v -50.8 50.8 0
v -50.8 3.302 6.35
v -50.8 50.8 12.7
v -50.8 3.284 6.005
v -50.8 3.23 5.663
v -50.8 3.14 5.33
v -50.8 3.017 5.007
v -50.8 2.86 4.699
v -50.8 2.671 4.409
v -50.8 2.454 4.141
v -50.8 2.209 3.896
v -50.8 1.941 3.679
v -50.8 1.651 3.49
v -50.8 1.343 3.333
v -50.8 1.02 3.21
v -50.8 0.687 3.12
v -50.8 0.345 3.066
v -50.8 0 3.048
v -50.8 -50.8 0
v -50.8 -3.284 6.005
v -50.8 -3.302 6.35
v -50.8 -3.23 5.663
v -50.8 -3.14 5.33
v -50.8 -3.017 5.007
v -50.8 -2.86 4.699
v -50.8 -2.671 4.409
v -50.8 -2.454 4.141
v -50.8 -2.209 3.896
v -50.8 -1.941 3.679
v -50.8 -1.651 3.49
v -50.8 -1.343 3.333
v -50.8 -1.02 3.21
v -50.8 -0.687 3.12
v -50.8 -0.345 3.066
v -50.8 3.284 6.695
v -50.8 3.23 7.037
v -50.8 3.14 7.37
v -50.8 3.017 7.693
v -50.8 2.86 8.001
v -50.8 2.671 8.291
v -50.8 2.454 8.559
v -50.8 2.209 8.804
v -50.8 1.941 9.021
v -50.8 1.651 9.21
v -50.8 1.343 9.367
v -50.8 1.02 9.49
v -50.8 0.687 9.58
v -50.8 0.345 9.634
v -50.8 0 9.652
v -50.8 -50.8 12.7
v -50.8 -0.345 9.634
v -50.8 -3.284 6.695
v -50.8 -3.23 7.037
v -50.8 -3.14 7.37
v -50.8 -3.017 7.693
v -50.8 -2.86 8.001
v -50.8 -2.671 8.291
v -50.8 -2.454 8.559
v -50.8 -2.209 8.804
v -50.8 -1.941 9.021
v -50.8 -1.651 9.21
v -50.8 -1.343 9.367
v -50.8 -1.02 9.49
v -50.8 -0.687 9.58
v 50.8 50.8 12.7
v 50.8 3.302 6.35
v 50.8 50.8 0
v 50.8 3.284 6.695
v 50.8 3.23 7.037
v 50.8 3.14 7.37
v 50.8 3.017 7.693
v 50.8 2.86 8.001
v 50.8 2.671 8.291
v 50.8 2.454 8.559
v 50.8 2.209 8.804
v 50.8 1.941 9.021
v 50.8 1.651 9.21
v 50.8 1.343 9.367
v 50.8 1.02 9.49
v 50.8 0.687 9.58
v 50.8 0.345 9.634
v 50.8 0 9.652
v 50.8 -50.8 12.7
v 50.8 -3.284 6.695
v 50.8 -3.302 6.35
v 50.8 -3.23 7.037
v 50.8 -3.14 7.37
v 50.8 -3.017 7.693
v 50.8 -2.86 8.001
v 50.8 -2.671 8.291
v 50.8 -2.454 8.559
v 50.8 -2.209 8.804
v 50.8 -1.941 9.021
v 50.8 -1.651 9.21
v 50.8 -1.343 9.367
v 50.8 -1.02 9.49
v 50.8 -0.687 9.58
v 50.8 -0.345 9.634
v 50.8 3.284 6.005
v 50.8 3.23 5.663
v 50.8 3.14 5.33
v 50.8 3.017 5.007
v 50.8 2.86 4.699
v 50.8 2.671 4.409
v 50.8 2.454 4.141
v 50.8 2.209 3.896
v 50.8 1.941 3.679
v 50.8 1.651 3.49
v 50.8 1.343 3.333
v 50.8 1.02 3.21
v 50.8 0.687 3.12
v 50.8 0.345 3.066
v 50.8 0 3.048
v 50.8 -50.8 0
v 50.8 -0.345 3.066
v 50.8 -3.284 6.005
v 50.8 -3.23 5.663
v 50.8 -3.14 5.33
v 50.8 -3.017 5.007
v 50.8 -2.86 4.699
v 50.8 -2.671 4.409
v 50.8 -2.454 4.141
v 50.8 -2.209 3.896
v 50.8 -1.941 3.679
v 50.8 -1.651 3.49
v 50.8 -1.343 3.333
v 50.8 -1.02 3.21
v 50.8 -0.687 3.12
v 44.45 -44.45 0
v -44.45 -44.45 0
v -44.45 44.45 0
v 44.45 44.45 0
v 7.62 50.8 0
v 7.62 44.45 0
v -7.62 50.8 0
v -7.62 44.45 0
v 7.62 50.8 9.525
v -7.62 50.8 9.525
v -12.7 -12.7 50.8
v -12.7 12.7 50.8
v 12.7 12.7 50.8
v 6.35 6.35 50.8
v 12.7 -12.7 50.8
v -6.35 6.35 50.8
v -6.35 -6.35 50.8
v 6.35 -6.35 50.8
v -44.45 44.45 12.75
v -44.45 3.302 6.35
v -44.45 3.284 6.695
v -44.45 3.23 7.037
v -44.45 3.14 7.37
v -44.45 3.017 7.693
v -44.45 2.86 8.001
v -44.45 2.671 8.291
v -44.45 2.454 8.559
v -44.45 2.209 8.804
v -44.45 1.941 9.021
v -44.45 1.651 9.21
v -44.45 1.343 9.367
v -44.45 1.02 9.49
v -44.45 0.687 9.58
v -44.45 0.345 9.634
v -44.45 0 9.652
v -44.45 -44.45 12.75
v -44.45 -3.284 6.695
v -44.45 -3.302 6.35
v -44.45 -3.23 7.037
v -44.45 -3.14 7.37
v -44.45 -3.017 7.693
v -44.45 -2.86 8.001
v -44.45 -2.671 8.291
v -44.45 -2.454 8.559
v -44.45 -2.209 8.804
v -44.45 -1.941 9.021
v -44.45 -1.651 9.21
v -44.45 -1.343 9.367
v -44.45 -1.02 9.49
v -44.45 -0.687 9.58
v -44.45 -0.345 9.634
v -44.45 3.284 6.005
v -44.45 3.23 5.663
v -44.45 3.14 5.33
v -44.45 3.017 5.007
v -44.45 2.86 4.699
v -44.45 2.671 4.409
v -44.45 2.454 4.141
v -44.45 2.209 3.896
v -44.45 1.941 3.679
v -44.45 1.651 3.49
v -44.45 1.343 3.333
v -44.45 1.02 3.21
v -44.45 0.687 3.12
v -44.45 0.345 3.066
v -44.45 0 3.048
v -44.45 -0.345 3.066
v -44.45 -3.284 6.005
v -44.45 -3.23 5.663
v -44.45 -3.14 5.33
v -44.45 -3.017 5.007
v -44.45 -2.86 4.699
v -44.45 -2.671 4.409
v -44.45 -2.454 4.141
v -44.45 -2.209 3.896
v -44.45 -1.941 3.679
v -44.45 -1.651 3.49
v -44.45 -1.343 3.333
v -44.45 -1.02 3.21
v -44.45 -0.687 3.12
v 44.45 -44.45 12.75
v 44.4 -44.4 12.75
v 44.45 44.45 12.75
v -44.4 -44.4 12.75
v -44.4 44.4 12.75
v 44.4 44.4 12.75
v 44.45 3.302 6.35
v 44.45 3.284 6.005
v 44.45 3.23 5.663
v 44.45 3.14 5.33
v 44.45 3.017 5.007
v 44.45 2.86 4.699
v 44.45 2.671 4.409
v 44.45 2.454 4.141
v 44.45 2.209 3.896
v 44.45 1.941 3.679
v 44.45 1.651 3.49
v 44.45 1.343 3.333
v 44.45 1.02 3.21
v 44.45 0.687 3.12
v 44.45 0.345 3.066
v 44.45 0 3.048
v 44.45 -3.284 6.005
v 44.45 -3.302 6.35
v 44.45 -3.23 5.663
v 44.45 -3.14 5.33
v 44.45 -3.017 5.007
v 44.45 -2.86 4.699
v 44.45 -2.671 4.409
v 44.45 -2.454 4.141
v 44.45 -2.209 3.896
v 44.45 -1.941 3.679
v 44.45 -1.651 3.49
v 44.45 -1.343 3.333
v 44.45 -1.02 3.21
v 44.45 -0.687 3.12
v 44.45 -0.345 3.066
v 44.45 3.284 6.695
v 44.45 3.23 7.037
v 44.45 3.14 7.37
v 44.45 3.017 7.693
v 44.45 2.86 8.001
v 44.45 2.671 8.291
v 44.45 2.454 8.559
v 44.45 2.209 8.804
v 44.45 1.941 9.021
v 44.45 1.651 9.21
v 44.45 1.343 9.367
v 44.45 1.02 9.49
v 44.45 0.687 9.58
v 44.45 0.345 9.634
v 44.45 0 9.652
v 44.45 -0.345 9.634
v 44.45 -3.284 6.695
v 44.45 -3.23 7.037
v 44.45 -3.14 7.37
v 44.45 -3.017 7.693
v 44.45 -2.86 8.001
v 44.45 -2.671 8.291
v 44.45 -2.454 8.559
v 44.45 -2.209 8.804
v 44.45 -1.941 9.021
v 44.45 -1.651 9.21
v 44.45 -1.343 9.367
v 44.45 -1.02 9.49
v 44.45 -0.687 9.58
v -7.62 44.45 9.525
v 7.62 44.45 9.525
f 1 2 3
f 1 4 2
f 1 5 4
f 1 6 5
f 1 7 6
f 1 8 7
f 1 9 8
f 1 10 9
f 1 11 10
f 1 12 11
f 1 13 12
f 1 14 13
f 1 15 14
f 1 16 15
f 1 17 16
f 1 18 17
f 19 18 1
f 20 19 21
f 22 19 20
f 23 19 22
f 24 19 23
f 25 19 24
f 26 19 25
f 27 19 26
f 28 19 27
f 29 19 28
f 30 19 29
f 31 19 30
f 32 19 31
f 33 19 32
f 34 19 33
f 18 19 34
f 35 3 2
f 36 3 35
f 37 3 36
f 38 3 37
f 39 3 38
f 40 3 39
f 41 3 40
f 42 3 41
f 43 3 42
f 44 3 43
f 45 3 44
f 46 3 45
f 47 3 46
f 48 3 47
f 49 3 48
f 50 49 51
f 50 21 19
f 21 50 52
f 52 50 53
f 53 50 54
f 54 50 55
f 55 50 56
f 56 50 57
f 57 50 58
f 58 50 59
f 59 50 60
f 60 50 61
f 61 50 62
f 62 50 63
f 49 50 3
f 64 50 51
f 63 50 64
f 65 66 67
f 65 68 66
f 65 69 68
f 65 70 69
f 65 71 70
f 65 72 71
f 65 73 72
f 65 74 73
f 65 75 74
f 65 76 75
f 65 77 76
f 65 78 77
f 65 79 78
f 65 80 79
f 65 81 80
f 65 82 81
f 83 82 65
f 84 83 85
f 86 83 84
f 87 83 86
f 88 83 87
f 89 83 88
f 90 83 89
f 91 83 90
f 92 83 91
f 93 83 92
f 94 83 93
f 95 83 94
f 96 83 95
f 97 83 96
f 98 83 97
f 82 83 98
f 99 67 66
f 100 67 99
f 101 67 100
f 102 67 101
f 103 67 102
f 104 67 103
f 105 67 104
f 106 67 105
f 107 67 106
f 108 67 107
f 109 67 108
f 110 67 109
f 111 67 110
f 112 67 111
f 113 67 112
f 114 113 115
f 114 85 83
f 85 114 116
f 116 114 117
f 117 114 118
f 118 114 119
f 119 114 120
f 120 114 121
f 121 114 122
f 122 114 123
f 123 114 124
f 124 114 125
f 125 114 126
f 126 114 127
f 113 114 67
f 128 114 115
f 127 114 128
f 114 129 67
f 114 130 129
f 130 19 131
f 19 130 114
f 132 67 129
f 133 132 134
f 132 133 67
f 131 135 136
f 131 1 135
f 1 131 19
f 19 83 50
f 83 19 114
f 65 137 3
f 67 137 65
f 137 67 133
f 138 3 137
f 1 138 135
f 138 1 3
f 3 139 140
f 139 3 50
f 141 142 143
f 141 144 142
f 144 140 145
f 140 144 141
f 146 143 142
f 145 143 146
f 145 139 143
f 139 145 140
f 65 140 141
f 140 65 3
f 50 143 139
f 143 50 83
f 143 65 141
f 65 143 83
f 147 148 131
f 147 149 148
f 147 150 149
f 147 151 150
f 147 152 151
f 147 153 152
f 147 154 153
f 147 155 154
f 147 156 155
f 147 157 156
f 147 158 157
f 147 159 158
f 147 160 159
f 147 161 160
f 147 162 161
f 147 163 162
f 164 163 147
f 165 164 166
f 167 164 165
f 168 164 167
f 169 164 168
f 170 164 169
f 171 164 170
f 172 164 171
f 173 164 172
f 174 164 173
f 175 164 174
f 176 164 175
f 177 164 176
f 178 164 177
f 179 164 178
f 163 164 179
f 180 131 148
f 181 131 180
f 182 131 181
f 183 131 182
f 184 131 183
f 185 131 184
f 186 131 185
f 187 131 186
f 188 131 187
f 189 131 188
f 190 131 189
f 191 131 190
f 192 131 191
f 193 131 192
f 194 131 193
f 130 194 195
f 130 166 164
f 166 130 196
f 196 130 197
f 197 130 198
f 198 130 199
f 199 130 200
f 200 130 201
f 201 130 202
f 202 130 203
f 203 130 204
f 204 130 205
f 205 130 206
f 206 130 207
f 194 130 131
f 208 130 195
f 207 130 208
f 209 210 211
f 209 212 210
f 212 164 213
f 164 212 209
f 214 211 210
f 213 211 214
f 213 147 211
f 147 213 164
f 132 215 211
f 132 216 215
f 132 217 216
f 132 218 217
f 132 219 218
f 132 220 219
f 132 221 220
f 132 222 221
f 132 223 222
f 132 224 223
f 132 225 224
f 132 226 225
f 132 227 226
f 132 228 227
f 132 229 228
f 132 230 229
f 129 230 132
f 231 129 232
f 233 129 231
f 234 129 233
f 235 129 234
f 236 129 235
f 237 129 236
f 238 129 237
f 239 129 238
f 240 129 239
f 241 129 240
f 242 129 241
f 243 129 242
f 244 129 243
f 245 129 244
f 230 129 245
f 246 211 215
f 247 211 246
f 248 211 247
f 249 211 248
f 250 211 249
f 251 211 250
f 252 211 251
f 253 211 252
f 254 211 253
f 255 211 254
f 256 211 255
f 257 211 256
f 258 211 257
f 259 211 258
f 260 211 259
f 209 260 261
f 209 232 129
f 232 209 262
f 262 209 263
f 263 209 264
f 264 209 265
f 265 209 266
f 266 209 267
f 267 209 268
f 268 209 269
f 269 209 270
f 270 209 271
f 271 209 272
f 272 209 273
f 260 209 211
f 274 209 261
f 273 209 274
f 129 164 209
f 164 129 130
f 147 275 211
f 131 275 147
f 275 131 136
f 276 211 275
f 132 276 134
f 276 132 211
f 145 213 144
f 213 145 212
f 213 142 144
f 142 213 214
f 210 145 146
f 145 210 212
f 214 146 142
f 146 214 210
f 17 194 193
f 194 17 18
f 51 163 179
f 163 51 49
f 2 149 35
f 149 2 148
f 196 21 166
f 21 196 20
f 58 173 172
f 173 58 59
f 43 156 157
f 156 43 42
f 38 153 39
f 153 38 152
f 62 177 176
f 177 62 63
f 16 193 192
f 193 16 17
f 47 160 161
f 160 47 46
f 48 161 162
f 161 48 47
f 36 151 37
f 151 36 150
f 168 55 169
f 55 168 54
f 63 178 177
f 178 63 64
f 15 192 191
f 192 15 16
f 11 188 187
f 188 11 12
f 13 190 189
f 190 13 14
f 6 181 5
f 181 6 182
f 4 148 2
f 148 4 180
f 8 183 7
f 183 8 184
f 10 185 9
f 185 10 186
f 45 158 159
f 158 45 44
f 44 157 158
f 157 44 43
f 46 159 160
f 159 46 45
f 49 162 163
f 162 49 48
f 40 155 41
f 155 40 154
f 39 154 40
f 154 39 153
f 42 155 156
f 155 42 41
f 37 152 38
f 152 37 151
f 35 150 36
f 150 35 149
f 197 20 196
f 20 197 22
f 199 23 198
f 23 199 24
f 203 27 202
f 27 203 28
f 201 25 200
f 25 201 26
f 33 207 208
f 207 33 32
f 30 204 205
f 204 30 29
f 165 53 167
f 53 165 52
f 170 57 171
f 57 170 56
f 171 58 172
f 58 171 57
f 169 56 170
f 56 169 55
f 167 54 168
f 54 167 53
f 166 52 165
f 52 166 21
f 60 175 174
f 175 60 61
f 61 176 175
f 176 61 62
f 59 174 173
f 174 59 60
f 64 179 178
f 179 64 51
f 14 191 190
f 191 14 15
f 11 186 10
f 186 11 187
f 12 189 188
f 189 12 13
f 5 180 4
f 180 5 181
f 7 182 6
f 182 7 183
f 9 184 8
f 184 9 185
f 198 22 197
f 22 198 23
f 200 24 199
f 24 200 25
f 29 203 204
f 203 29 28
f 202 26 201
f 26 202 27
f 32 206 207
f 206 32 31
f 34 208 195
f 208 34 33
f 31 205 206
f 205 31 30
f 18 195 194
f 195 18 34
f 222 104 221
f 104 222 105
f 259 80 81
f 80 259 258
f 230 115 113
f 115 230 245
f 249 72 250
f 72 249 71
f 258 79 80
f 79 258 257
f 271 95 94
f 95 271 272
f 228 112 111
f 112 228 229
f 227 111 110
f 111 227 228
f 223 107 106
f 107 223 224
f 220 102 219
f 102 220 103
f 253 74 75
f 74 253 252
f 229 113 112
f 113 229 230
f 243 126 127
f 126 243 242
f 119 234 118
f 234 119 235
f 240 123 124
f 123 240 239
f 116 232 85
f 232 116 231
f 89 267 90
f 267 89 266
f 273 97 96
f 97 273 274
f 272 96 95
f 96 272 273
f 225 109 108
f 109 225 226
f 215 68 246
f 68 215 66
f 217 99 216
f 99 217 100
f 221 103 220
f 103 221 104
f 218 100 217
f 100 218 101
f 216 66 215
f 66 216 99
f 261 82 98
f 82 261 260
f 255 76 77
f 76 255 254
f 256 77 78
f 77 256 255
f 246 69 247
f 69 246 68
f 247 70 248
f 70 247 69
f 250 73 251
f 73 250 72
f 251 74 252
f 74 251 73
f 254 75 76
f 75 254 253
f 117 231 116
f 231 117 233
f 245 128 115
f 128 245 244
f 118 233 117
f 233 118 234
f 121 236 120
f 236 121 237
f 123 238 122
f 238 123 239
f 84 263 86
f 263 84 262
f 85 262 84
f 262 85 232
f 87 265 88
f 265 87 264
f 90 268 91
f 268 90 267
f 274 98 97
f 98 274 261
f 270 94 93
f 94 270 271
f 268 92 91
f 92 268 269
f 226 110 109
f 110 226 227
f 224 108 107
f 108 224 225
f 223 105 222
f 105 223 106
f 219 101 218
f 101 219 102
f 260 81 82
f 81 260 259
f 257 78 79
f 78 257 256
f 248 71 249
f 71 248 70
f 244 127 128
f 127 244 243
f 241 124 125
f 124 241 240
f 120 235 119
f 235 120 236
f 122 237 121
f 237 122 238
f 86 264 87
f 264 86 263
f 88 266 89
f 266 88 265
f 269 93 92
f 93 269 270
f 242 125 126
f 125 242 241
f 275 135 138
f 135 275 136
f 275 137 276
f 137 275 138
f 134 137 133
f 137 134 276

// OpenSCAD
// All-Seeing Eye Enclosure Design
// Unit: mm (Converted from freedom units)

/* [Global Dimensions] */
INCH = 25.4;

// Base Specifications
base_width = 4.0 * INCH;
base_height = 0.5 * INCH;
wall_thickness = 0.25 * INCH;

// Pyramid Specifications
// Slope is 45 degrees.
// For a 45 degree slope, the change in height equals the change in radius (distance from center).
// Height to Apex = (base_width / 2) * tan(45) = base_width / 2
slope_angle = 45; 

// Top flat area for SMA connector
top_width = 1.0 * INCH; 

// Calculate pyramid height based on slope and top width
// The horizontal run from base edge to top edge is: (base_width - top_width) / 2
// height = run * tan(angle). Since angle is 45, tan is 1.
pyramid_height = (base_width - top_width) / 2;

// Connector Dimensions
sma_hole_diameter = 0.26 * INCH; // ~6.6mm, purely clearance for SMA thread
usb_cutout_width = 0.6 * INCH;
usb_cutout_height = 0.3 * INCH; // Height of the actual hole
usb_cable_clearance = 0.5 * INCH; // Width of slot at bottom

/* [Rendering resolution] */
$fn = 60;

module main() {
    difference() {
        // 1. Positive Volume (The Shell)
        union() {
            // A. Base Prism
            translate([0, 0, base_height/2])
                cube([base_width, base_width, base_height], center=true);
            
            // B. Pyramid Frustum
            // Positioned on top of the base
            translate([0, 0, base_height])
                pyramid_frustum(base_width, top_width, pyramid_height);
        }

        // 2. Negative Volume (The Hollow)
        union() {
            // A. Hollow Base
            // Subtract thickness from X and Y, but allow Z to cut through to pyramid
            translate([0, 0, base_height/2])
                cube([base_width - 2*wall_thickness, base_width - 2*wall_thickness, base_height + 0.1], center=true);
            
            // B. Hollow Pyramid
            // To maintain roughly constant wall thickness perpendicular to a 45 deg slope is tricky with simple scaling.
            // Simple approach: Subtract inner pyramid starting at same height, but with smaller base.
            // Inner base width = Outer Width - 2 * wall_thickness
            // We want the inner void to match up with the base void.
            inner_base_width = base_width - 2*wall_thickness;
            inner_top_width = max(0, top_width - 2*wall_thickness); // Ensure it doesn't invert
            
            // The height of the inner pyramid needs to be calculated or offset carefully.
            // Since it's 45 degrees, the inner ceiling is lower by 'wall_thickness'.
            translate([0, 0, base_height])
                 pyramid_frustum(inner_base_width, inner_top_width, pyramid_height);
        }

        // 3. Cutouts / Holes
        
        // A. Top SMA Connector (Apex)
        translate([0, 0, base_height + pyramid_height - 1]) // Start slightly below top
            cylinder(h = wall_thickness + 2, d = sma_hole_diameter, center = false);

        // B. Left Face SMA (WiFi) - Looking from Front
        // Front is -Y (standard convention often, but let's define Front).
        // Let's assume:
        // +Y = Back (Rear)
        // -Y = Front
        // -X = Left
        // +X = Right
        
        // Left Face (-X)
        translate([-base_width/2 + wall_thickness/2, 0, base_height/2])
            rotate([0, 90, 0])
            cylinder(h = wall_thickness + 2, d = sma_hole_diameter, center = true);

        // C. Right Face SMA (Meshtastic) (+X)
        translate([base_width/2 - wall_thickness/2, 0, base_height/2])
            rotate([0, 90, 0])
            cylinder(h = wall_thickness + 2, d = sma_hole_diameter, center = true);

        // D. Rear Face USB (+Y)
        // "Hole reaching to the bottom of the base"
        translate([0, base_width/2 - wall_thickness/2, 0]) // At bottom Z=0
            cube([usb_cutout_width, wall_thickness + 2, base_height*1.5], center = true);
            
    }
}

// Module to create a centered 4-sided pyramid frustum
module pyramid_frustum(base_w, top_w, h) {
    // OpenSCAD's cylinder with $fn=4 creates a square rotated by 45 degrees.
    // To align it with axes, we rotate it by 45 degrees.
    // circumradius = side / sqrt(2) * 2? No.
    // side = r * sqrt(2). r = side / sqrt(2).
    
    r_base = (base_w / 2) * sqrt(2);
    r_top = (top_w / 2) * sqrt(2);
    
    rotate([0, 0, 45])
        cylinder(h=h, r1=r_base, r2=r_top, $fn=4);
}

main();
